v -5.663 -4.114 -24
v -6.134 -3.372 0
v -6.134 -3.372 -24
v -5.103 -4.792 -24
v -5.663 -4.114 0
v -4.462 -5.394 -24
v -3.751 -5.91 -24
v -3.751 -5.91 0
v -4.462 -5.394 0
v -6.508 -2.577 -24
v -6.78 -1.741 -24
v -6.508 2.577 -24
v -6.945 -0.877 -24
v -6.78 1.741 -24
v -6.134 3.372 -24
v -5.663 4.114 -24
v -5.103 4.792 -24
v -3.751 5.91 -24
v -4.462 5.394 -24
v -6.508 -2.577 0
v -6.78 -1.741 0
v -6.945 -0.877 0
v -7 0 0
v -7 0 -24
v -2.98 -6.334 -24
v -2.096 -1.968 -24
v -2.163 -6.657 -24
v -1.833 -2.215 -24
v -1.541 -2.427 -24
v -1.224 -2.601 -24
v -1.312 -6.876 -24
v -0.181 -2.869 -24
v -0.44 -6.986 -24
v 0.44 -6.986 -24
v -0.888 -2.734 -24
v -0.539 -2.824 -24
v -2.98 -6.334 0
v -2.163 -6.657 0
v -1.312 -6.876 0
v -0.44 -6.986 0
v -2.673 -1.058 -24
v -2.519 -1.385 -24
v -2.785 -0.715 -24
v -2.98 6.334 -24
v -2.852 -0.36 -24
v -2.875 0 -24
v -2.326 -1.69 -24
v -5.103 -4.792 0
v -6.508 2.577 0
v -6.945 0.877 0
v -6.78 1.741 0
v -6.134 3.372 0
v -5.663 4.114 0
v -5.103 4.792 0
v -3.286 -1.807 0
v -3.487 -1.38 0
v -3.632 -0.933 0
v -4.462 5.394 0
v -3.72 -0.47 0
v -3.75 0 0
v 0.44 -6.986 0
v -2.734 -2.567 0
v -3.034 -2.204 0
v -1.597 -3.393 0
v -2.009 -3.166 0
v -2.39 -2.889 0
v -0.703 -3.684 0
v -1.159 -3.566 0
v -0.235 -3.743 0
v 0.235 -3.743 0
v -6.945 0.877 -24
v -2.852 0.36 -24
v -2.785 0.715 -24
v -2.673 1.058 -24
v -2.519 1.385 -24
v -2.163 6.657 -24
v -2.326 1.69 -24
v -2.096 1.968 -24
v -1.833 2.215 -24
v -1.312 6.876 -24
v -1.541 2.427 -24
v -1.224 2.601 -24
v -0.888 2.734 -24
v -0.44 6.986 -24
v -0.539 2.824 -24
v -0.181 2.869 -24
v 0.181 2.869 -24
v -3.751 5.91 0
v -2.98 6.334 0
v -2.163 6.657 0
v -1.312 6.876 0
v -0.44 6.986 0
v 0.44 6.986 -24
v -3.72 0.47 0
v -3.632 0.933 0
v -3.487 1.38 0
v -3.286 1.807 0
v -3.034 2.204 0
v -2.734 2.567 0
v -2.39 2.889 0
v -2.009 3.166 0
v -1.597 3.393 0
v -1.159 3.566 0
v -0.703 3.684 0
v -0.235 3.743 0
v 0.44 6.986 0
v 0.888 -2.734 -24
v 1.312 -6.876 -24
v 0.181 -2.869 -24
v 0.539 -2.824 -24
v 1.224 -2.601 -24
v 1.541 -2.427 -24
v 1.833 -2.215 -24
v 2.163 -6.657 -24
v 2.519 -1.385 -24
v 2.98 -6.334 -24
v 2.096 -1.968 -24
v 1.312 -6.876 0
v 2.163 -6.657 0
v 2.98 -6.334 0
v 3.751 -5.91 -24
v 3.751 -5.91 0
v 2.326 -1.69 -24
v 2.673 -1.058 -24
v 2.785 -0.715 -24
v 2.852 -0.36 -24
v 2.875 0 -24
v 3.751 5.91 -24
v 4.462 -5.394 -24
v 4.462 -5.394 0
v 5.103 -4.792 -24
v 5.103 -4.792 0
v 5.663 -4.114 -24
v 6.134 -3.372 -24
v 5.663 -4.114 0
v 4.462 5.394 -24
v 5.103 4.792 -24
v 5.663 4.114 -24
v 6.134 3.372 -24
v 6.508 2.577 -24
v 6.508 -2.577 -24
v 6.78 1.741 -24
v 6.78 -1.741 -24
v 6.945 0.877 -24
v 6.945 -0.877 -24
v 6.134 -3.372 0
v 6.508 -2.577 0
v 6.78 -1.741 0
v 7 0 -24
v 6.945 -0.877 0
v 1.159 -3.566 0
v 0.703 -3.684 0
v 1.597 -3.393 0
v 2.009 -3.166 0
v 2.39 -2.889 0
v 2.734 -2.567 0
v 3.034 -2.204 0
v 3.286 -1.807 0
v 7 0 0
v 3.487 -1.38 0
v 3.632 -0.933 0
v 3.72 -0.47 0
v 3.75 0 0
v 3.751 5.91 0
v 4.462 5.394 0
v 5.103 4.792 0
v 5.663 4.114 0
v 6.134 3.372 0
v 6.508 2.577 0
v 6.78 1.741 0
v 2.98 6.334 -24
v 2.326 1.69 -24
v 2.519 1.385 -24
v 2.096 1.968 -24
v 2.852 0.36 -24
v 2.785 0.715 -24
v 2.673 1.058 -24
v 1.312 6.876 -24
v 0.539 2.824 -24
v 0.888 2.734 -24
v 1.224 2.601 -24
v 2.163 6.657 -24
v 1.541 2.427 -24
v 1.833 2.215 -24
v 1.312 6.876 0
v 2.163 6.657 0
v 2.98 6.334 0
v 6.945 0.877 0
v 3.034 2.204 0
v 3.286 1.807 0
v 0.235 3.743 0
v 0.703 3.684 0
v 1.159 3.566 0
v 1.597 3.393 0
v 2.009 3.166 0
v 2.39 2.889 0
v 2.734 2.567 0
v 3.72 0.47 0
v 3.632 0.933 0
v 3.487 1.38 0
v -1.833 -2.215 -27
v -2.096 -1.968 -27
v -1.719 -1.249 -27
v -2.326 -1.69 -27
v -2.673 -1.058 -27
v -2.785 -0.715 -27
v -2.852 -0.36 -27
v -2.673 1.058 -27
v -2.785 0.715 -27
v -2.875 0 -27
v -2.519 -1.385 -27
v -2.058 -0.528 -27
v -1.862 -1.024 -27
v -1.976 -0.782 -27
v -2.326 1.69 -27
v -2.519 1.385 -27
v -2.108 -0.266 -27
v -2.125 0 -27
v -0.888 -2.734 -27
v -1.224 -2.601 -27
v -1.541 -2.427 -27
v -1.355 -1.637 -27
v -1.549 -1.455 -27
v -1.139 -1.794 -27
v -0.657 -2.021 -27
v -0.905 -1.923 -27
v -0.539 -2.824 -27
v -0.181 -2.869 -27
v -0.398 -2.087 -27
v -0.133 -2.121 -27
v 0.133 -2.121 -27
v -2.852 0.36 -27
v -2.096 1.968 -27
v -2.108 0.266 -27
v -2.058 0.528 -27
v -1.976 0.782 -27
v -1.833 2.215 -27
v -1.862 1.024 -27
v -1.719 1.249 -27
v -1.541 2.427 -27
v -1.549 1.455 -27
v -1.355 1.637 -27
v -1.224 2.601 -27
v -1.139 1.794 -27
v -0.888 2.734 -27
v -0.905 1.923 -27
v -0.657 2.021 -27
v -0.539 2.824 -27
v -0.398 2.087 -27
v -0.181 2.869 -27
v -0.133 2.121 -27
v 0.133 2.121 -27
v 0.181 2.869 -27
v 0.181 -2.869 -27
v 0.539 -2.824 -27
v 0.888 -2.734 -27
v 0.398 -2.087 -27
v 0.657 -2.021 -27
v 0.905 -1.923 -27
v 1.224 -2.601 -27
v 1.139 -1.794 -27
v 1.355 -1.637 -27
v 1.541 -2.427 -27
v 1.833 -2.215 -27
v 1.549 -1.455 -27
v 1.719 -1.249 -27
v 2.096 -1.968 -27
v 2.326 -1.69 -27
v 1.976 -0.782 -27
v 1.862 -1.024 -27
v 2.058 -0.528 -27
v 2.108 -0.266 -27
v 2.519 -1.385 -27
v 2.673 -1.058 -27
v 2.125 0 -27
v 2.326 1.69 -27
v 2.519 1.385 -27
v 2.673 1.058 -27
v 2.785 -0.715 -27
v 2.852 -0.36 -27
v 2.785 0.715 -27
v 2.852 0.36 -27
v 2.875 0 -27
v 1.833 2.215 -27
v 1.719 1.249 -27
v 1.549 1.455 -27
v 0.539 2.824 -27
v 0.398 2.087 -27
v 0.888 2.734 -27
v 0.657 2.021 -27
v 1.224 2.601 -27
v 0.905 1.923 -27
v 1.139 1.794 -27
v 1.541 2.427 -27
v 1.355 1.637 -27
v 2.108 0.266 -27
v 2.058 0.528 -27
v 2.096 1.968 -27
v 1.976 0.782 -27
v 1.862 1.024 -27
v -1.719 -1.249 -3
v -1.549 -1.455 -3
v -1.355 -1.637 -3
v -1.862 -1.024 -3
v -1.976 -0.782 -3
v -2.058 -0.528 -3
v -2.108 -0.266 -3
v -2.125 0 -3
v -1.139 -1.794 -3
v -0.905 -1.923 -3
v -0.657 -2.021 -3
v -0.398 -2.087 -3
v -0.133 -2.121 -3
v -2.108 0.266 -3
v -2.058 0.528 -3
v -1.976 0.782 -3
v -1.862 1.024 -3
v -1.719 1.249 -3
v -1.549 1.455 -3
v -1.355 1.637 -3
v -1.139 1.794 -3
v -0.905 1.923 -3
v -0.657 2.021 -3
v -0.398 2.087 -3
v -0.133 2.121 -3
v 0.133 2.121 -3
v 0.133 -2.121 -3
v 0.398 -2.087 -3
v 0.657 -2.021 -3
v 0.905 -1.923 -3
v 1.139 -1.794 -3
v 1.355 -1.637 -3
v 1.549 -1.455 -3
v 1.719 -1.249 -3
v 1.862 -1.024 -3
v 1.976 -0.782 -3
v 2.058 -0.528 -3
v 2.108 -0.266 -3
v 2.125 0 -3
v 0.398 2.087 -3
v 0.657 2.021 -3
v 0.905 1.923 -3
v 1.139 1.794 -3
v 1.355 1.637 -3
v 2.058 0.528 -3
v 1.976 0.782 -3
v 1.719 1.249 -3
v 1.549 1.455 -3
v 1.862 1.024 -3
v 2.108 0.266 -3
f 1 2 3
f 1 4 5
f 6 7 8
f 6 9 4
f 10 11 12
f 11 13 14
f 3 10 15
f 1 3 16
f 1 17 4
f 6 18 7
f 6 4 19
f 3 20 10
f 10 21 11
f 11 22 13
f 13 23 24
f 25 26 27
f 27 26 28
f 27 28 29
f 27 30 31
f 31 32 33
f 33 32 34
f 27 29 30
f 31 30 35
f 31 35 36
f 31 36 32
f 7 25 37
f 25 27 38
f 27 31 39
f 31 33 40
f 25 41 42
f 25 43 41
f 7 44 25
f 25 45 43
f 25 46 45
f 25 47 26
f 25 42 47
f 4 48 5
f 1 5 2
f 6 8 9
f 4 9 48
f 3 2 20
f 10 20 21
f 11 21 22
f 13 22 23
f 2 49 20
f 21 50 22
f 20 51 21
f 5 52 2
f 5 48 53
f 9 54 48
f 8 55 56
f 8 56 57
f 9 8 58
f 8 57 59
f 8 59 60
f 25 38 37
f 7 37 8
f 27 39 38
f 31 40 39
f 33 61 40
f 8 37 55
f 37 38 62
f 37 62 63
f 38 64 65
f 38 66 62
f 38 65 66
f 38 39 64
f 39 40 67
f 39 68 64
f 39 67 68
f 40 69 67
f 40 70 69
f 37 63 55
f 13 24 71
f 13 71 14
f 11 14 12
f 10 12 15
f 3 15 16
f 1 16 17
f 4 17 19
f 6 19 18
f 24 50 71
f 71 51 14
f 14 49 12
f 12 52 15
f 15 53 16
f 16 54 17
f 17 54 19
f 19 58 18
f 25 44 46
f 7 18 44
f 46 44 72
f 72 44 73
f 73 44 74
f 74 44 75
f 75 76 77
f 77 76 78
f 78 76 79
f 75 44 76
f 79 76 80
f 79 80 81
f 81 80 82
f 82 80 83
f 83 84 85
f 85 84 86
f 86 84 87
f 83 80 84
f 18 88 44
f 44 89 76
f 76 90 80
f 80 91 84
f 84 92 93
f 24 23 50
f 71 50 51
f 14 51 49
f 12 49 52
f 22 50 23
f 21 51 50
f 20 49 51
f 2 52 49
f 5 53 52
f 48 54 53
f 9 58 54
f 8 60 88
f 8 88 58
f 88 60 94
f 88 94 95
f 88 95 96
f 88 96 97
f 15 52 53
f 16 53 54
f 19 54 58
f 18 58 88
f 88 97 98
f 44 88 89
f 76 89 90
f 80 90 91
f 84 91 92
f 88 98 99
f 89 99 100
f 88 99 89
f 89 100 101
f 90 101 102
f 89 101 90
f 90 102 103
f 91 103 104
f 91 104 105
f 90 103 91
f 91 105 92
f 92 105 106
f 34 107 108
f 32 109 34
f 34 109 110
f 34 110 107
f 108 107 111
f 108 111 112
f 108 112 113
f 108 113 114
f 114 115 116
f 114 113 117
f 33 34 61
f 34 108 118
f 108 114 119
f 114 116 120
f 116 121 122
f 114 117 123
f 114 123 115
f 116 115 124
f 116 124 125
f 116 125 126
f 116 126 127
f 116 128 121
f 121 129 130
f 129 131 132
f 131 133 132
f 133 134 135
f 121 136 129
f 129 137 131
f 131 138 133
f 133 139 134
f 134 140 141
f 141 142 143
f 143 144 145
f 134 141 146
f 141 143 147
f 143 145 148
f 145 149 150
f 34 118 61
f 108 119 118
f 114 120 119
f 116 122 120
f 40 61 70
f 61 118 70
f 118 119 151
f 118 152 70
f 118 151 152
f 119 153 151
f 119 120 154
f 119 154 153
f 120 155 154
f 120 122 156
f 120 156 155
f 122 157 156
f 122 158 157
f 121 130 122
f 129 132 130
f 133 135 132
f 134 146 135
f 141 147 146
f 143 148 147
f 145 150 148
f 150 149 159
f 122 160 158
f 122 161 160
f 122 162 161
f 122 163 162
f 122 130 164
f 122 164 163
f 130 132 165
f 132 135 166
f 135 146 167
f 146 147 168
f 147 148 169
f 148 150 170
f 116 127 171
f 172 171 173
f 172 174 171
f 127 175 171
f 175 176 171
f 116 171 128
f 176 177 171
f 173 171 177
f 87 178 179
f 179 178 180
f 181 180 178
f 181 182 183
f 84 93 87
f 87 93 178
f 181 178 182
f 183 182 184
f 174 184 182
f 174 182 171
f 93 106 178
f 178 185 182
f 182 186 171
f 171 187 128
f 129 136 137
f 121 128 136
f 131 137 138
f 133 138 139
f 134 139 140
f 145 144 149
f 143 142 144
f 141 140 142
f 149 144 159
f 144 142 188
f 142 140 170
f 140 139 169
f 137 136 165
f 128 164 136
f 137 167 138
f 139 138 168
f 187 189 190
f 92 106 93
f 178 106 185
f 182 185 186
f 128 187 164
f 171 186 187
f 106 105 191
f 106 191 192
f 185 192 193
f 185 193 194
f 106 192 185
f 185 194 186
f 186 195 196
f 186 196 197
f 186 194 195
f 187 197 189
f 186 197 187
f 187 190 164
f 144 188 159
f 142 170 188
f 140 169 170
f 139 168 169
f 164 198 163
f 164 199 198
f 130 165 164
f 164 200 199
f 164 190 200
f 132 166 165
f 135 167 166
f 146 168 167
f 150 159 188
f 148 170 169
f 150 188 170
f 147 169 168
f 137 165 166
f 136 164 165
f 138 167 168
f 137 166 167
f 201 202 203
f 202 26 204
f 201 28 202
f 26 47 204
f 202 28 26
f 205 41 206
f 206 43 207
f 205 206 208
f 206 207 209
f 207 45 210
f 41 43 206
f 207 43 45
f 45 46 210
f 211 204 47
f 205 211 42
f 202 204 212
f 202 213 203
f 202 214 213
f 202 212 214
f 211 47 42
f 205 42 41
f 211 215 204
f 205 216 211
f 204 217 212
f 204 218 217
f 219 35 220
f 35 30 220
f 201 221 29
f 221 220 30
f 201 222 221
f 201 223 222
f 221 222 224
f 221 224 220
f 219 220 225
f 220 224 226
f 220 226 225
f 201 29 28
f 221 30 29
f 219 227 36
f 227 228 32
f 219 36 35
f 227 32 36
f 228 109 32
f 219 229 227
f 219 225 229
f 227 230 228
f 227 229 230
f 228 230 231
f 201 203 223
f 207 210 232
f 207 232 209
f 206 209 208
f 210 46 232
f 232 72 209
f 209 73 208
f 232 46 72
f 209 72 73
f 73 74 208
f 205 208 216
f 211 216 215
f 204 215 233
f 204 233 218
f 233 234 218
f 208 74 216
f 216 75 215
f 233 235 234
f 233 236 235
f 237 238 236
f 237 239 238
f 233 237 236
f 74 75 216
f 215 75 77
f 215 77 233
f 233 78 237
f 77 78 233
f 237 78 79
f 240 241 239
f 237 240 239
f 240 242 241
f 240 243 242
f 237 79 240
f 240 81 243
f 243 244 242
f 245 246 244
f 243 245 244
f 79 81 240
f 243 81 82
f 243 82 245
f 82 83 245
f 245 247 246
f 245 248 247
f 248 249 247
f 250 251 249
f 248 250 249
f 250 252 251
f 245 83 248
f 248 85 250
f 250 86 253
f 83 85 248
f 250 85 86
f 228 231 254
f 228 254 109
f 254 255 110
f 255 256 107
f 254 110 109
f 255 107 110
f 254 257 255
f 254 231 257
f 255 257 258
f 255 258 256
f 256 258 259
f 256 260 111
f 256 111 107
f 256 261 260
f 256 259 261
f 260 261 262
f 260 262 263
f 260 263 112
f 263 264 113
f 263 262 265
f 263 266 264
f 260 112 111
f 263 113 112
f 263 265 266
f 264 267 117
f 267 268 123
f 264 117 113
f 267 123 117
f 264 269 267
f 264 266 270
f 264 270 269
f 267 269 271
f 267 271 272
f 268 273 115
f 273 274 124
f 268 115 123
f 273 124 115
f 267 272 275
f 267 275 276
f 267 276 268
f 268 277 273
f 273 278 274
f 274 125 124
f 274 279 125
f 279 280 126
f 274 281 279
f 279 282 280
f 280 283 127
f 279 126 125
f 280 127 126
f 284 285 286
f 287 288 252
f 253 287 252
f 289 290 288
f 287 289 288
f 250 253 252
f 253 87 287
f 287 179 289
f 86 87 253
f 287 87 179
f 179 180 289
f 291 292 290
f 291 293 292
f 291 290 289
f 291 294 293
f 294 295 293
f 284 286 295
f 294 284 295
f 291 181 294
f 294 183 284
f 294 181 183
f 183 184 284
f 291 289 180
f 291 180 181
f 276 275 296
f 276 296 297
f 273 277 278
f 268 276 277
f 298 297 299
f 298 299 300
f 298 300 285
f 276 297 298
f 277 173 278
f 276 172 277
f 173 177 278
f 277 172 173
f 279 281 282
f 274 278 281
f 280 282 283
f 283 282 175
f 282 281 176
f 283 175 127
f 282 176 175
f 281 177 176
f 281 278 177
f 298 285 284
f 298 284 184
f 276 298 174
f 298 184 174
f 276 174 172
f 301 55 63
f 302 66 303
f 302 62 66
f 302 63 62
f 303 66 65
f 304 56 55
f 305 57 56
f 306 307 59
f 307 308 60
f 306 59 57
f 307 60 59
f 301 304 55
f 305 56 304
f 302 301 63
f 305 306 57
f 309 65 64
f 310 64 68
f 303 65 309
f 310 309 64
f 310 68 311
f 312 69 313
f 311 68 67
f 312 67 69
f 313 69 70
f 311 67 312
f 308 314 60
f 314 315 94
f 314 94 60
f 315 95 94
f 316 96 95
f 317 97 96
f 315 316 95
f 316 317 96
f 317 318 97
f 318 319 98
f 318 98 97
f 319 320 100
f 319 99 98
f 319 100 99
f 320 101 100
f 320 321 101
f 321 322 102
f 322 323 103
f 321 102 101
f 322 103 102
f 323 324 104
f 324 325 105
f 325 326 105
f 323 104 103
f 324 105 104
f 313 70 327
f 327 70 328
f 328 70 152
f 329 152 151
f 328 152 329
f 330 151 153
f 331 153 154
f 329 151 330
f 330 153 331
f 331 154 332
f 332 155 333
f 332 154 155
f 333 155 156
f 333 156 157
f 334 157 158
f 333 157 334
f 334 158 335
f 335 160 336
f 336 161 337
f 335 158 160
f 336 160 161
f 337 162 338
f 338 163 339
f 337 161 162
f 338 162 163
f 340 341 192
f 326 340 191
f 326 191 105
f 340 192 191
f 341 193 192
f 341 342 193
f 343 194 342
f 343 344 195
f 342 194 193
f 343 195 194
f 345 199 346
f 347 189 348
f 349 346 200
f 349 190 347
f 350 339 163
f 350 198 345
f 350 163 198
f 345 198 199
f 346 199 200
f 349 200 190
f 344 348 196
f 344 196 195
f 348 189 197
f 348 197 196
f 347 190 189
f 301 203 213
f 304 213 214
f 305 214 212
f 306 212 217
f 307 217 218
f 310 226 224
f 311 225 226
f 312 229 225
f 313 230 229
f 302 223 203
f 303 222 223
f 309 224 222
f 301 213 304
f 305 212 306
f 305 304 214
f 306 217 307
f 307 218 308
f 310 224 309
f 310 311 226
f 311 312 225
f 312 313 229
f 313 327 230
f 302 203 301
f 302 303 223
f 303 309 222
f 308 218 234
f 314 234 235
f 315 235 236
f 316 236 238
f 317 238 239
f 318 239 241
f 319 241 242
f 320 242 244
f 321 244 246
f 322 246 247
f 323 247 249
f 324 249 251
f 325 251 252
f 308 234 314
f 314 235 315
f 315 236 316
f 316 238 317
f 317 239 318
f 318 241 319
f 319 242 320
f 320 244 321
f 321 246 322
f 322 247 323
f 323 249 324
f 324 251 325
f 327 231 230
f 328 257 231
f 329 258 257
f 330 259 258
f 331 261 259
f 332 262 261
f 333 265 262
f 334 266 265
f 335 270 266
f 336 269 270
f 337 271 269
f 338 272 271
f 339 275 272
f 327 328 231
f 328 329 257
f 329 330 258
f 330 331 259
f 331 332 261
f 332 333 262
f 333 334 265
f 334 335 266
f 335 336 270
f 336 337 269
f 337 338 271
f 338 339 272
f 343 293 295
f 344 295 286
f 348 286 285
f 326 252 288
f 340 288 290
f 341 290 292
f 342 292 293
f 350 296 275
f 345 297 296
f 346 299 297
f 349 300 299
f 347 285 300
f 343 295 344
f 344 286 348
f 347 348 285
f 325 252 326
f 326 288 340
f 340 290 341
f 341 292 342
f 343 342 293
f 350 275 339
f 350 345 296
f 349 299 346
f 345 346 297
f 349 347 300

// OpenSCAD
$fn = 50;

difference() {
	union() {
		translate(v = [0, 0, -24.0]) {
			cylinder(h = 24, r = 7.0);
		}
		#translate(v = [0, 0, -27.0]) {
			cylinder(h = 27, r = 2.875);
		}
	}
	union() {
		translate(v = [0, 0, 0]) {
			rotate(a = [0, 0, 0]) {
				difference() {
					union() {
						translate(v = [0, 0, -27.0]) {
							cylinder(h = 27, r = 2.0);
						}
						translate(v = [0, 0, -3]) {
							cylinder(h = 3, r1 = 2.125, r2 = 3.75);
						}
						translate(v = [0, 0, -27.0]) {
							cylinder(h = 27, r = 2.125);
						}
						translate(v = [0, 0, -27.0]) {
							cylinder(h = 27, r = 2.0);
						}
					}
					union();
				}
			}
		}
	}
}
